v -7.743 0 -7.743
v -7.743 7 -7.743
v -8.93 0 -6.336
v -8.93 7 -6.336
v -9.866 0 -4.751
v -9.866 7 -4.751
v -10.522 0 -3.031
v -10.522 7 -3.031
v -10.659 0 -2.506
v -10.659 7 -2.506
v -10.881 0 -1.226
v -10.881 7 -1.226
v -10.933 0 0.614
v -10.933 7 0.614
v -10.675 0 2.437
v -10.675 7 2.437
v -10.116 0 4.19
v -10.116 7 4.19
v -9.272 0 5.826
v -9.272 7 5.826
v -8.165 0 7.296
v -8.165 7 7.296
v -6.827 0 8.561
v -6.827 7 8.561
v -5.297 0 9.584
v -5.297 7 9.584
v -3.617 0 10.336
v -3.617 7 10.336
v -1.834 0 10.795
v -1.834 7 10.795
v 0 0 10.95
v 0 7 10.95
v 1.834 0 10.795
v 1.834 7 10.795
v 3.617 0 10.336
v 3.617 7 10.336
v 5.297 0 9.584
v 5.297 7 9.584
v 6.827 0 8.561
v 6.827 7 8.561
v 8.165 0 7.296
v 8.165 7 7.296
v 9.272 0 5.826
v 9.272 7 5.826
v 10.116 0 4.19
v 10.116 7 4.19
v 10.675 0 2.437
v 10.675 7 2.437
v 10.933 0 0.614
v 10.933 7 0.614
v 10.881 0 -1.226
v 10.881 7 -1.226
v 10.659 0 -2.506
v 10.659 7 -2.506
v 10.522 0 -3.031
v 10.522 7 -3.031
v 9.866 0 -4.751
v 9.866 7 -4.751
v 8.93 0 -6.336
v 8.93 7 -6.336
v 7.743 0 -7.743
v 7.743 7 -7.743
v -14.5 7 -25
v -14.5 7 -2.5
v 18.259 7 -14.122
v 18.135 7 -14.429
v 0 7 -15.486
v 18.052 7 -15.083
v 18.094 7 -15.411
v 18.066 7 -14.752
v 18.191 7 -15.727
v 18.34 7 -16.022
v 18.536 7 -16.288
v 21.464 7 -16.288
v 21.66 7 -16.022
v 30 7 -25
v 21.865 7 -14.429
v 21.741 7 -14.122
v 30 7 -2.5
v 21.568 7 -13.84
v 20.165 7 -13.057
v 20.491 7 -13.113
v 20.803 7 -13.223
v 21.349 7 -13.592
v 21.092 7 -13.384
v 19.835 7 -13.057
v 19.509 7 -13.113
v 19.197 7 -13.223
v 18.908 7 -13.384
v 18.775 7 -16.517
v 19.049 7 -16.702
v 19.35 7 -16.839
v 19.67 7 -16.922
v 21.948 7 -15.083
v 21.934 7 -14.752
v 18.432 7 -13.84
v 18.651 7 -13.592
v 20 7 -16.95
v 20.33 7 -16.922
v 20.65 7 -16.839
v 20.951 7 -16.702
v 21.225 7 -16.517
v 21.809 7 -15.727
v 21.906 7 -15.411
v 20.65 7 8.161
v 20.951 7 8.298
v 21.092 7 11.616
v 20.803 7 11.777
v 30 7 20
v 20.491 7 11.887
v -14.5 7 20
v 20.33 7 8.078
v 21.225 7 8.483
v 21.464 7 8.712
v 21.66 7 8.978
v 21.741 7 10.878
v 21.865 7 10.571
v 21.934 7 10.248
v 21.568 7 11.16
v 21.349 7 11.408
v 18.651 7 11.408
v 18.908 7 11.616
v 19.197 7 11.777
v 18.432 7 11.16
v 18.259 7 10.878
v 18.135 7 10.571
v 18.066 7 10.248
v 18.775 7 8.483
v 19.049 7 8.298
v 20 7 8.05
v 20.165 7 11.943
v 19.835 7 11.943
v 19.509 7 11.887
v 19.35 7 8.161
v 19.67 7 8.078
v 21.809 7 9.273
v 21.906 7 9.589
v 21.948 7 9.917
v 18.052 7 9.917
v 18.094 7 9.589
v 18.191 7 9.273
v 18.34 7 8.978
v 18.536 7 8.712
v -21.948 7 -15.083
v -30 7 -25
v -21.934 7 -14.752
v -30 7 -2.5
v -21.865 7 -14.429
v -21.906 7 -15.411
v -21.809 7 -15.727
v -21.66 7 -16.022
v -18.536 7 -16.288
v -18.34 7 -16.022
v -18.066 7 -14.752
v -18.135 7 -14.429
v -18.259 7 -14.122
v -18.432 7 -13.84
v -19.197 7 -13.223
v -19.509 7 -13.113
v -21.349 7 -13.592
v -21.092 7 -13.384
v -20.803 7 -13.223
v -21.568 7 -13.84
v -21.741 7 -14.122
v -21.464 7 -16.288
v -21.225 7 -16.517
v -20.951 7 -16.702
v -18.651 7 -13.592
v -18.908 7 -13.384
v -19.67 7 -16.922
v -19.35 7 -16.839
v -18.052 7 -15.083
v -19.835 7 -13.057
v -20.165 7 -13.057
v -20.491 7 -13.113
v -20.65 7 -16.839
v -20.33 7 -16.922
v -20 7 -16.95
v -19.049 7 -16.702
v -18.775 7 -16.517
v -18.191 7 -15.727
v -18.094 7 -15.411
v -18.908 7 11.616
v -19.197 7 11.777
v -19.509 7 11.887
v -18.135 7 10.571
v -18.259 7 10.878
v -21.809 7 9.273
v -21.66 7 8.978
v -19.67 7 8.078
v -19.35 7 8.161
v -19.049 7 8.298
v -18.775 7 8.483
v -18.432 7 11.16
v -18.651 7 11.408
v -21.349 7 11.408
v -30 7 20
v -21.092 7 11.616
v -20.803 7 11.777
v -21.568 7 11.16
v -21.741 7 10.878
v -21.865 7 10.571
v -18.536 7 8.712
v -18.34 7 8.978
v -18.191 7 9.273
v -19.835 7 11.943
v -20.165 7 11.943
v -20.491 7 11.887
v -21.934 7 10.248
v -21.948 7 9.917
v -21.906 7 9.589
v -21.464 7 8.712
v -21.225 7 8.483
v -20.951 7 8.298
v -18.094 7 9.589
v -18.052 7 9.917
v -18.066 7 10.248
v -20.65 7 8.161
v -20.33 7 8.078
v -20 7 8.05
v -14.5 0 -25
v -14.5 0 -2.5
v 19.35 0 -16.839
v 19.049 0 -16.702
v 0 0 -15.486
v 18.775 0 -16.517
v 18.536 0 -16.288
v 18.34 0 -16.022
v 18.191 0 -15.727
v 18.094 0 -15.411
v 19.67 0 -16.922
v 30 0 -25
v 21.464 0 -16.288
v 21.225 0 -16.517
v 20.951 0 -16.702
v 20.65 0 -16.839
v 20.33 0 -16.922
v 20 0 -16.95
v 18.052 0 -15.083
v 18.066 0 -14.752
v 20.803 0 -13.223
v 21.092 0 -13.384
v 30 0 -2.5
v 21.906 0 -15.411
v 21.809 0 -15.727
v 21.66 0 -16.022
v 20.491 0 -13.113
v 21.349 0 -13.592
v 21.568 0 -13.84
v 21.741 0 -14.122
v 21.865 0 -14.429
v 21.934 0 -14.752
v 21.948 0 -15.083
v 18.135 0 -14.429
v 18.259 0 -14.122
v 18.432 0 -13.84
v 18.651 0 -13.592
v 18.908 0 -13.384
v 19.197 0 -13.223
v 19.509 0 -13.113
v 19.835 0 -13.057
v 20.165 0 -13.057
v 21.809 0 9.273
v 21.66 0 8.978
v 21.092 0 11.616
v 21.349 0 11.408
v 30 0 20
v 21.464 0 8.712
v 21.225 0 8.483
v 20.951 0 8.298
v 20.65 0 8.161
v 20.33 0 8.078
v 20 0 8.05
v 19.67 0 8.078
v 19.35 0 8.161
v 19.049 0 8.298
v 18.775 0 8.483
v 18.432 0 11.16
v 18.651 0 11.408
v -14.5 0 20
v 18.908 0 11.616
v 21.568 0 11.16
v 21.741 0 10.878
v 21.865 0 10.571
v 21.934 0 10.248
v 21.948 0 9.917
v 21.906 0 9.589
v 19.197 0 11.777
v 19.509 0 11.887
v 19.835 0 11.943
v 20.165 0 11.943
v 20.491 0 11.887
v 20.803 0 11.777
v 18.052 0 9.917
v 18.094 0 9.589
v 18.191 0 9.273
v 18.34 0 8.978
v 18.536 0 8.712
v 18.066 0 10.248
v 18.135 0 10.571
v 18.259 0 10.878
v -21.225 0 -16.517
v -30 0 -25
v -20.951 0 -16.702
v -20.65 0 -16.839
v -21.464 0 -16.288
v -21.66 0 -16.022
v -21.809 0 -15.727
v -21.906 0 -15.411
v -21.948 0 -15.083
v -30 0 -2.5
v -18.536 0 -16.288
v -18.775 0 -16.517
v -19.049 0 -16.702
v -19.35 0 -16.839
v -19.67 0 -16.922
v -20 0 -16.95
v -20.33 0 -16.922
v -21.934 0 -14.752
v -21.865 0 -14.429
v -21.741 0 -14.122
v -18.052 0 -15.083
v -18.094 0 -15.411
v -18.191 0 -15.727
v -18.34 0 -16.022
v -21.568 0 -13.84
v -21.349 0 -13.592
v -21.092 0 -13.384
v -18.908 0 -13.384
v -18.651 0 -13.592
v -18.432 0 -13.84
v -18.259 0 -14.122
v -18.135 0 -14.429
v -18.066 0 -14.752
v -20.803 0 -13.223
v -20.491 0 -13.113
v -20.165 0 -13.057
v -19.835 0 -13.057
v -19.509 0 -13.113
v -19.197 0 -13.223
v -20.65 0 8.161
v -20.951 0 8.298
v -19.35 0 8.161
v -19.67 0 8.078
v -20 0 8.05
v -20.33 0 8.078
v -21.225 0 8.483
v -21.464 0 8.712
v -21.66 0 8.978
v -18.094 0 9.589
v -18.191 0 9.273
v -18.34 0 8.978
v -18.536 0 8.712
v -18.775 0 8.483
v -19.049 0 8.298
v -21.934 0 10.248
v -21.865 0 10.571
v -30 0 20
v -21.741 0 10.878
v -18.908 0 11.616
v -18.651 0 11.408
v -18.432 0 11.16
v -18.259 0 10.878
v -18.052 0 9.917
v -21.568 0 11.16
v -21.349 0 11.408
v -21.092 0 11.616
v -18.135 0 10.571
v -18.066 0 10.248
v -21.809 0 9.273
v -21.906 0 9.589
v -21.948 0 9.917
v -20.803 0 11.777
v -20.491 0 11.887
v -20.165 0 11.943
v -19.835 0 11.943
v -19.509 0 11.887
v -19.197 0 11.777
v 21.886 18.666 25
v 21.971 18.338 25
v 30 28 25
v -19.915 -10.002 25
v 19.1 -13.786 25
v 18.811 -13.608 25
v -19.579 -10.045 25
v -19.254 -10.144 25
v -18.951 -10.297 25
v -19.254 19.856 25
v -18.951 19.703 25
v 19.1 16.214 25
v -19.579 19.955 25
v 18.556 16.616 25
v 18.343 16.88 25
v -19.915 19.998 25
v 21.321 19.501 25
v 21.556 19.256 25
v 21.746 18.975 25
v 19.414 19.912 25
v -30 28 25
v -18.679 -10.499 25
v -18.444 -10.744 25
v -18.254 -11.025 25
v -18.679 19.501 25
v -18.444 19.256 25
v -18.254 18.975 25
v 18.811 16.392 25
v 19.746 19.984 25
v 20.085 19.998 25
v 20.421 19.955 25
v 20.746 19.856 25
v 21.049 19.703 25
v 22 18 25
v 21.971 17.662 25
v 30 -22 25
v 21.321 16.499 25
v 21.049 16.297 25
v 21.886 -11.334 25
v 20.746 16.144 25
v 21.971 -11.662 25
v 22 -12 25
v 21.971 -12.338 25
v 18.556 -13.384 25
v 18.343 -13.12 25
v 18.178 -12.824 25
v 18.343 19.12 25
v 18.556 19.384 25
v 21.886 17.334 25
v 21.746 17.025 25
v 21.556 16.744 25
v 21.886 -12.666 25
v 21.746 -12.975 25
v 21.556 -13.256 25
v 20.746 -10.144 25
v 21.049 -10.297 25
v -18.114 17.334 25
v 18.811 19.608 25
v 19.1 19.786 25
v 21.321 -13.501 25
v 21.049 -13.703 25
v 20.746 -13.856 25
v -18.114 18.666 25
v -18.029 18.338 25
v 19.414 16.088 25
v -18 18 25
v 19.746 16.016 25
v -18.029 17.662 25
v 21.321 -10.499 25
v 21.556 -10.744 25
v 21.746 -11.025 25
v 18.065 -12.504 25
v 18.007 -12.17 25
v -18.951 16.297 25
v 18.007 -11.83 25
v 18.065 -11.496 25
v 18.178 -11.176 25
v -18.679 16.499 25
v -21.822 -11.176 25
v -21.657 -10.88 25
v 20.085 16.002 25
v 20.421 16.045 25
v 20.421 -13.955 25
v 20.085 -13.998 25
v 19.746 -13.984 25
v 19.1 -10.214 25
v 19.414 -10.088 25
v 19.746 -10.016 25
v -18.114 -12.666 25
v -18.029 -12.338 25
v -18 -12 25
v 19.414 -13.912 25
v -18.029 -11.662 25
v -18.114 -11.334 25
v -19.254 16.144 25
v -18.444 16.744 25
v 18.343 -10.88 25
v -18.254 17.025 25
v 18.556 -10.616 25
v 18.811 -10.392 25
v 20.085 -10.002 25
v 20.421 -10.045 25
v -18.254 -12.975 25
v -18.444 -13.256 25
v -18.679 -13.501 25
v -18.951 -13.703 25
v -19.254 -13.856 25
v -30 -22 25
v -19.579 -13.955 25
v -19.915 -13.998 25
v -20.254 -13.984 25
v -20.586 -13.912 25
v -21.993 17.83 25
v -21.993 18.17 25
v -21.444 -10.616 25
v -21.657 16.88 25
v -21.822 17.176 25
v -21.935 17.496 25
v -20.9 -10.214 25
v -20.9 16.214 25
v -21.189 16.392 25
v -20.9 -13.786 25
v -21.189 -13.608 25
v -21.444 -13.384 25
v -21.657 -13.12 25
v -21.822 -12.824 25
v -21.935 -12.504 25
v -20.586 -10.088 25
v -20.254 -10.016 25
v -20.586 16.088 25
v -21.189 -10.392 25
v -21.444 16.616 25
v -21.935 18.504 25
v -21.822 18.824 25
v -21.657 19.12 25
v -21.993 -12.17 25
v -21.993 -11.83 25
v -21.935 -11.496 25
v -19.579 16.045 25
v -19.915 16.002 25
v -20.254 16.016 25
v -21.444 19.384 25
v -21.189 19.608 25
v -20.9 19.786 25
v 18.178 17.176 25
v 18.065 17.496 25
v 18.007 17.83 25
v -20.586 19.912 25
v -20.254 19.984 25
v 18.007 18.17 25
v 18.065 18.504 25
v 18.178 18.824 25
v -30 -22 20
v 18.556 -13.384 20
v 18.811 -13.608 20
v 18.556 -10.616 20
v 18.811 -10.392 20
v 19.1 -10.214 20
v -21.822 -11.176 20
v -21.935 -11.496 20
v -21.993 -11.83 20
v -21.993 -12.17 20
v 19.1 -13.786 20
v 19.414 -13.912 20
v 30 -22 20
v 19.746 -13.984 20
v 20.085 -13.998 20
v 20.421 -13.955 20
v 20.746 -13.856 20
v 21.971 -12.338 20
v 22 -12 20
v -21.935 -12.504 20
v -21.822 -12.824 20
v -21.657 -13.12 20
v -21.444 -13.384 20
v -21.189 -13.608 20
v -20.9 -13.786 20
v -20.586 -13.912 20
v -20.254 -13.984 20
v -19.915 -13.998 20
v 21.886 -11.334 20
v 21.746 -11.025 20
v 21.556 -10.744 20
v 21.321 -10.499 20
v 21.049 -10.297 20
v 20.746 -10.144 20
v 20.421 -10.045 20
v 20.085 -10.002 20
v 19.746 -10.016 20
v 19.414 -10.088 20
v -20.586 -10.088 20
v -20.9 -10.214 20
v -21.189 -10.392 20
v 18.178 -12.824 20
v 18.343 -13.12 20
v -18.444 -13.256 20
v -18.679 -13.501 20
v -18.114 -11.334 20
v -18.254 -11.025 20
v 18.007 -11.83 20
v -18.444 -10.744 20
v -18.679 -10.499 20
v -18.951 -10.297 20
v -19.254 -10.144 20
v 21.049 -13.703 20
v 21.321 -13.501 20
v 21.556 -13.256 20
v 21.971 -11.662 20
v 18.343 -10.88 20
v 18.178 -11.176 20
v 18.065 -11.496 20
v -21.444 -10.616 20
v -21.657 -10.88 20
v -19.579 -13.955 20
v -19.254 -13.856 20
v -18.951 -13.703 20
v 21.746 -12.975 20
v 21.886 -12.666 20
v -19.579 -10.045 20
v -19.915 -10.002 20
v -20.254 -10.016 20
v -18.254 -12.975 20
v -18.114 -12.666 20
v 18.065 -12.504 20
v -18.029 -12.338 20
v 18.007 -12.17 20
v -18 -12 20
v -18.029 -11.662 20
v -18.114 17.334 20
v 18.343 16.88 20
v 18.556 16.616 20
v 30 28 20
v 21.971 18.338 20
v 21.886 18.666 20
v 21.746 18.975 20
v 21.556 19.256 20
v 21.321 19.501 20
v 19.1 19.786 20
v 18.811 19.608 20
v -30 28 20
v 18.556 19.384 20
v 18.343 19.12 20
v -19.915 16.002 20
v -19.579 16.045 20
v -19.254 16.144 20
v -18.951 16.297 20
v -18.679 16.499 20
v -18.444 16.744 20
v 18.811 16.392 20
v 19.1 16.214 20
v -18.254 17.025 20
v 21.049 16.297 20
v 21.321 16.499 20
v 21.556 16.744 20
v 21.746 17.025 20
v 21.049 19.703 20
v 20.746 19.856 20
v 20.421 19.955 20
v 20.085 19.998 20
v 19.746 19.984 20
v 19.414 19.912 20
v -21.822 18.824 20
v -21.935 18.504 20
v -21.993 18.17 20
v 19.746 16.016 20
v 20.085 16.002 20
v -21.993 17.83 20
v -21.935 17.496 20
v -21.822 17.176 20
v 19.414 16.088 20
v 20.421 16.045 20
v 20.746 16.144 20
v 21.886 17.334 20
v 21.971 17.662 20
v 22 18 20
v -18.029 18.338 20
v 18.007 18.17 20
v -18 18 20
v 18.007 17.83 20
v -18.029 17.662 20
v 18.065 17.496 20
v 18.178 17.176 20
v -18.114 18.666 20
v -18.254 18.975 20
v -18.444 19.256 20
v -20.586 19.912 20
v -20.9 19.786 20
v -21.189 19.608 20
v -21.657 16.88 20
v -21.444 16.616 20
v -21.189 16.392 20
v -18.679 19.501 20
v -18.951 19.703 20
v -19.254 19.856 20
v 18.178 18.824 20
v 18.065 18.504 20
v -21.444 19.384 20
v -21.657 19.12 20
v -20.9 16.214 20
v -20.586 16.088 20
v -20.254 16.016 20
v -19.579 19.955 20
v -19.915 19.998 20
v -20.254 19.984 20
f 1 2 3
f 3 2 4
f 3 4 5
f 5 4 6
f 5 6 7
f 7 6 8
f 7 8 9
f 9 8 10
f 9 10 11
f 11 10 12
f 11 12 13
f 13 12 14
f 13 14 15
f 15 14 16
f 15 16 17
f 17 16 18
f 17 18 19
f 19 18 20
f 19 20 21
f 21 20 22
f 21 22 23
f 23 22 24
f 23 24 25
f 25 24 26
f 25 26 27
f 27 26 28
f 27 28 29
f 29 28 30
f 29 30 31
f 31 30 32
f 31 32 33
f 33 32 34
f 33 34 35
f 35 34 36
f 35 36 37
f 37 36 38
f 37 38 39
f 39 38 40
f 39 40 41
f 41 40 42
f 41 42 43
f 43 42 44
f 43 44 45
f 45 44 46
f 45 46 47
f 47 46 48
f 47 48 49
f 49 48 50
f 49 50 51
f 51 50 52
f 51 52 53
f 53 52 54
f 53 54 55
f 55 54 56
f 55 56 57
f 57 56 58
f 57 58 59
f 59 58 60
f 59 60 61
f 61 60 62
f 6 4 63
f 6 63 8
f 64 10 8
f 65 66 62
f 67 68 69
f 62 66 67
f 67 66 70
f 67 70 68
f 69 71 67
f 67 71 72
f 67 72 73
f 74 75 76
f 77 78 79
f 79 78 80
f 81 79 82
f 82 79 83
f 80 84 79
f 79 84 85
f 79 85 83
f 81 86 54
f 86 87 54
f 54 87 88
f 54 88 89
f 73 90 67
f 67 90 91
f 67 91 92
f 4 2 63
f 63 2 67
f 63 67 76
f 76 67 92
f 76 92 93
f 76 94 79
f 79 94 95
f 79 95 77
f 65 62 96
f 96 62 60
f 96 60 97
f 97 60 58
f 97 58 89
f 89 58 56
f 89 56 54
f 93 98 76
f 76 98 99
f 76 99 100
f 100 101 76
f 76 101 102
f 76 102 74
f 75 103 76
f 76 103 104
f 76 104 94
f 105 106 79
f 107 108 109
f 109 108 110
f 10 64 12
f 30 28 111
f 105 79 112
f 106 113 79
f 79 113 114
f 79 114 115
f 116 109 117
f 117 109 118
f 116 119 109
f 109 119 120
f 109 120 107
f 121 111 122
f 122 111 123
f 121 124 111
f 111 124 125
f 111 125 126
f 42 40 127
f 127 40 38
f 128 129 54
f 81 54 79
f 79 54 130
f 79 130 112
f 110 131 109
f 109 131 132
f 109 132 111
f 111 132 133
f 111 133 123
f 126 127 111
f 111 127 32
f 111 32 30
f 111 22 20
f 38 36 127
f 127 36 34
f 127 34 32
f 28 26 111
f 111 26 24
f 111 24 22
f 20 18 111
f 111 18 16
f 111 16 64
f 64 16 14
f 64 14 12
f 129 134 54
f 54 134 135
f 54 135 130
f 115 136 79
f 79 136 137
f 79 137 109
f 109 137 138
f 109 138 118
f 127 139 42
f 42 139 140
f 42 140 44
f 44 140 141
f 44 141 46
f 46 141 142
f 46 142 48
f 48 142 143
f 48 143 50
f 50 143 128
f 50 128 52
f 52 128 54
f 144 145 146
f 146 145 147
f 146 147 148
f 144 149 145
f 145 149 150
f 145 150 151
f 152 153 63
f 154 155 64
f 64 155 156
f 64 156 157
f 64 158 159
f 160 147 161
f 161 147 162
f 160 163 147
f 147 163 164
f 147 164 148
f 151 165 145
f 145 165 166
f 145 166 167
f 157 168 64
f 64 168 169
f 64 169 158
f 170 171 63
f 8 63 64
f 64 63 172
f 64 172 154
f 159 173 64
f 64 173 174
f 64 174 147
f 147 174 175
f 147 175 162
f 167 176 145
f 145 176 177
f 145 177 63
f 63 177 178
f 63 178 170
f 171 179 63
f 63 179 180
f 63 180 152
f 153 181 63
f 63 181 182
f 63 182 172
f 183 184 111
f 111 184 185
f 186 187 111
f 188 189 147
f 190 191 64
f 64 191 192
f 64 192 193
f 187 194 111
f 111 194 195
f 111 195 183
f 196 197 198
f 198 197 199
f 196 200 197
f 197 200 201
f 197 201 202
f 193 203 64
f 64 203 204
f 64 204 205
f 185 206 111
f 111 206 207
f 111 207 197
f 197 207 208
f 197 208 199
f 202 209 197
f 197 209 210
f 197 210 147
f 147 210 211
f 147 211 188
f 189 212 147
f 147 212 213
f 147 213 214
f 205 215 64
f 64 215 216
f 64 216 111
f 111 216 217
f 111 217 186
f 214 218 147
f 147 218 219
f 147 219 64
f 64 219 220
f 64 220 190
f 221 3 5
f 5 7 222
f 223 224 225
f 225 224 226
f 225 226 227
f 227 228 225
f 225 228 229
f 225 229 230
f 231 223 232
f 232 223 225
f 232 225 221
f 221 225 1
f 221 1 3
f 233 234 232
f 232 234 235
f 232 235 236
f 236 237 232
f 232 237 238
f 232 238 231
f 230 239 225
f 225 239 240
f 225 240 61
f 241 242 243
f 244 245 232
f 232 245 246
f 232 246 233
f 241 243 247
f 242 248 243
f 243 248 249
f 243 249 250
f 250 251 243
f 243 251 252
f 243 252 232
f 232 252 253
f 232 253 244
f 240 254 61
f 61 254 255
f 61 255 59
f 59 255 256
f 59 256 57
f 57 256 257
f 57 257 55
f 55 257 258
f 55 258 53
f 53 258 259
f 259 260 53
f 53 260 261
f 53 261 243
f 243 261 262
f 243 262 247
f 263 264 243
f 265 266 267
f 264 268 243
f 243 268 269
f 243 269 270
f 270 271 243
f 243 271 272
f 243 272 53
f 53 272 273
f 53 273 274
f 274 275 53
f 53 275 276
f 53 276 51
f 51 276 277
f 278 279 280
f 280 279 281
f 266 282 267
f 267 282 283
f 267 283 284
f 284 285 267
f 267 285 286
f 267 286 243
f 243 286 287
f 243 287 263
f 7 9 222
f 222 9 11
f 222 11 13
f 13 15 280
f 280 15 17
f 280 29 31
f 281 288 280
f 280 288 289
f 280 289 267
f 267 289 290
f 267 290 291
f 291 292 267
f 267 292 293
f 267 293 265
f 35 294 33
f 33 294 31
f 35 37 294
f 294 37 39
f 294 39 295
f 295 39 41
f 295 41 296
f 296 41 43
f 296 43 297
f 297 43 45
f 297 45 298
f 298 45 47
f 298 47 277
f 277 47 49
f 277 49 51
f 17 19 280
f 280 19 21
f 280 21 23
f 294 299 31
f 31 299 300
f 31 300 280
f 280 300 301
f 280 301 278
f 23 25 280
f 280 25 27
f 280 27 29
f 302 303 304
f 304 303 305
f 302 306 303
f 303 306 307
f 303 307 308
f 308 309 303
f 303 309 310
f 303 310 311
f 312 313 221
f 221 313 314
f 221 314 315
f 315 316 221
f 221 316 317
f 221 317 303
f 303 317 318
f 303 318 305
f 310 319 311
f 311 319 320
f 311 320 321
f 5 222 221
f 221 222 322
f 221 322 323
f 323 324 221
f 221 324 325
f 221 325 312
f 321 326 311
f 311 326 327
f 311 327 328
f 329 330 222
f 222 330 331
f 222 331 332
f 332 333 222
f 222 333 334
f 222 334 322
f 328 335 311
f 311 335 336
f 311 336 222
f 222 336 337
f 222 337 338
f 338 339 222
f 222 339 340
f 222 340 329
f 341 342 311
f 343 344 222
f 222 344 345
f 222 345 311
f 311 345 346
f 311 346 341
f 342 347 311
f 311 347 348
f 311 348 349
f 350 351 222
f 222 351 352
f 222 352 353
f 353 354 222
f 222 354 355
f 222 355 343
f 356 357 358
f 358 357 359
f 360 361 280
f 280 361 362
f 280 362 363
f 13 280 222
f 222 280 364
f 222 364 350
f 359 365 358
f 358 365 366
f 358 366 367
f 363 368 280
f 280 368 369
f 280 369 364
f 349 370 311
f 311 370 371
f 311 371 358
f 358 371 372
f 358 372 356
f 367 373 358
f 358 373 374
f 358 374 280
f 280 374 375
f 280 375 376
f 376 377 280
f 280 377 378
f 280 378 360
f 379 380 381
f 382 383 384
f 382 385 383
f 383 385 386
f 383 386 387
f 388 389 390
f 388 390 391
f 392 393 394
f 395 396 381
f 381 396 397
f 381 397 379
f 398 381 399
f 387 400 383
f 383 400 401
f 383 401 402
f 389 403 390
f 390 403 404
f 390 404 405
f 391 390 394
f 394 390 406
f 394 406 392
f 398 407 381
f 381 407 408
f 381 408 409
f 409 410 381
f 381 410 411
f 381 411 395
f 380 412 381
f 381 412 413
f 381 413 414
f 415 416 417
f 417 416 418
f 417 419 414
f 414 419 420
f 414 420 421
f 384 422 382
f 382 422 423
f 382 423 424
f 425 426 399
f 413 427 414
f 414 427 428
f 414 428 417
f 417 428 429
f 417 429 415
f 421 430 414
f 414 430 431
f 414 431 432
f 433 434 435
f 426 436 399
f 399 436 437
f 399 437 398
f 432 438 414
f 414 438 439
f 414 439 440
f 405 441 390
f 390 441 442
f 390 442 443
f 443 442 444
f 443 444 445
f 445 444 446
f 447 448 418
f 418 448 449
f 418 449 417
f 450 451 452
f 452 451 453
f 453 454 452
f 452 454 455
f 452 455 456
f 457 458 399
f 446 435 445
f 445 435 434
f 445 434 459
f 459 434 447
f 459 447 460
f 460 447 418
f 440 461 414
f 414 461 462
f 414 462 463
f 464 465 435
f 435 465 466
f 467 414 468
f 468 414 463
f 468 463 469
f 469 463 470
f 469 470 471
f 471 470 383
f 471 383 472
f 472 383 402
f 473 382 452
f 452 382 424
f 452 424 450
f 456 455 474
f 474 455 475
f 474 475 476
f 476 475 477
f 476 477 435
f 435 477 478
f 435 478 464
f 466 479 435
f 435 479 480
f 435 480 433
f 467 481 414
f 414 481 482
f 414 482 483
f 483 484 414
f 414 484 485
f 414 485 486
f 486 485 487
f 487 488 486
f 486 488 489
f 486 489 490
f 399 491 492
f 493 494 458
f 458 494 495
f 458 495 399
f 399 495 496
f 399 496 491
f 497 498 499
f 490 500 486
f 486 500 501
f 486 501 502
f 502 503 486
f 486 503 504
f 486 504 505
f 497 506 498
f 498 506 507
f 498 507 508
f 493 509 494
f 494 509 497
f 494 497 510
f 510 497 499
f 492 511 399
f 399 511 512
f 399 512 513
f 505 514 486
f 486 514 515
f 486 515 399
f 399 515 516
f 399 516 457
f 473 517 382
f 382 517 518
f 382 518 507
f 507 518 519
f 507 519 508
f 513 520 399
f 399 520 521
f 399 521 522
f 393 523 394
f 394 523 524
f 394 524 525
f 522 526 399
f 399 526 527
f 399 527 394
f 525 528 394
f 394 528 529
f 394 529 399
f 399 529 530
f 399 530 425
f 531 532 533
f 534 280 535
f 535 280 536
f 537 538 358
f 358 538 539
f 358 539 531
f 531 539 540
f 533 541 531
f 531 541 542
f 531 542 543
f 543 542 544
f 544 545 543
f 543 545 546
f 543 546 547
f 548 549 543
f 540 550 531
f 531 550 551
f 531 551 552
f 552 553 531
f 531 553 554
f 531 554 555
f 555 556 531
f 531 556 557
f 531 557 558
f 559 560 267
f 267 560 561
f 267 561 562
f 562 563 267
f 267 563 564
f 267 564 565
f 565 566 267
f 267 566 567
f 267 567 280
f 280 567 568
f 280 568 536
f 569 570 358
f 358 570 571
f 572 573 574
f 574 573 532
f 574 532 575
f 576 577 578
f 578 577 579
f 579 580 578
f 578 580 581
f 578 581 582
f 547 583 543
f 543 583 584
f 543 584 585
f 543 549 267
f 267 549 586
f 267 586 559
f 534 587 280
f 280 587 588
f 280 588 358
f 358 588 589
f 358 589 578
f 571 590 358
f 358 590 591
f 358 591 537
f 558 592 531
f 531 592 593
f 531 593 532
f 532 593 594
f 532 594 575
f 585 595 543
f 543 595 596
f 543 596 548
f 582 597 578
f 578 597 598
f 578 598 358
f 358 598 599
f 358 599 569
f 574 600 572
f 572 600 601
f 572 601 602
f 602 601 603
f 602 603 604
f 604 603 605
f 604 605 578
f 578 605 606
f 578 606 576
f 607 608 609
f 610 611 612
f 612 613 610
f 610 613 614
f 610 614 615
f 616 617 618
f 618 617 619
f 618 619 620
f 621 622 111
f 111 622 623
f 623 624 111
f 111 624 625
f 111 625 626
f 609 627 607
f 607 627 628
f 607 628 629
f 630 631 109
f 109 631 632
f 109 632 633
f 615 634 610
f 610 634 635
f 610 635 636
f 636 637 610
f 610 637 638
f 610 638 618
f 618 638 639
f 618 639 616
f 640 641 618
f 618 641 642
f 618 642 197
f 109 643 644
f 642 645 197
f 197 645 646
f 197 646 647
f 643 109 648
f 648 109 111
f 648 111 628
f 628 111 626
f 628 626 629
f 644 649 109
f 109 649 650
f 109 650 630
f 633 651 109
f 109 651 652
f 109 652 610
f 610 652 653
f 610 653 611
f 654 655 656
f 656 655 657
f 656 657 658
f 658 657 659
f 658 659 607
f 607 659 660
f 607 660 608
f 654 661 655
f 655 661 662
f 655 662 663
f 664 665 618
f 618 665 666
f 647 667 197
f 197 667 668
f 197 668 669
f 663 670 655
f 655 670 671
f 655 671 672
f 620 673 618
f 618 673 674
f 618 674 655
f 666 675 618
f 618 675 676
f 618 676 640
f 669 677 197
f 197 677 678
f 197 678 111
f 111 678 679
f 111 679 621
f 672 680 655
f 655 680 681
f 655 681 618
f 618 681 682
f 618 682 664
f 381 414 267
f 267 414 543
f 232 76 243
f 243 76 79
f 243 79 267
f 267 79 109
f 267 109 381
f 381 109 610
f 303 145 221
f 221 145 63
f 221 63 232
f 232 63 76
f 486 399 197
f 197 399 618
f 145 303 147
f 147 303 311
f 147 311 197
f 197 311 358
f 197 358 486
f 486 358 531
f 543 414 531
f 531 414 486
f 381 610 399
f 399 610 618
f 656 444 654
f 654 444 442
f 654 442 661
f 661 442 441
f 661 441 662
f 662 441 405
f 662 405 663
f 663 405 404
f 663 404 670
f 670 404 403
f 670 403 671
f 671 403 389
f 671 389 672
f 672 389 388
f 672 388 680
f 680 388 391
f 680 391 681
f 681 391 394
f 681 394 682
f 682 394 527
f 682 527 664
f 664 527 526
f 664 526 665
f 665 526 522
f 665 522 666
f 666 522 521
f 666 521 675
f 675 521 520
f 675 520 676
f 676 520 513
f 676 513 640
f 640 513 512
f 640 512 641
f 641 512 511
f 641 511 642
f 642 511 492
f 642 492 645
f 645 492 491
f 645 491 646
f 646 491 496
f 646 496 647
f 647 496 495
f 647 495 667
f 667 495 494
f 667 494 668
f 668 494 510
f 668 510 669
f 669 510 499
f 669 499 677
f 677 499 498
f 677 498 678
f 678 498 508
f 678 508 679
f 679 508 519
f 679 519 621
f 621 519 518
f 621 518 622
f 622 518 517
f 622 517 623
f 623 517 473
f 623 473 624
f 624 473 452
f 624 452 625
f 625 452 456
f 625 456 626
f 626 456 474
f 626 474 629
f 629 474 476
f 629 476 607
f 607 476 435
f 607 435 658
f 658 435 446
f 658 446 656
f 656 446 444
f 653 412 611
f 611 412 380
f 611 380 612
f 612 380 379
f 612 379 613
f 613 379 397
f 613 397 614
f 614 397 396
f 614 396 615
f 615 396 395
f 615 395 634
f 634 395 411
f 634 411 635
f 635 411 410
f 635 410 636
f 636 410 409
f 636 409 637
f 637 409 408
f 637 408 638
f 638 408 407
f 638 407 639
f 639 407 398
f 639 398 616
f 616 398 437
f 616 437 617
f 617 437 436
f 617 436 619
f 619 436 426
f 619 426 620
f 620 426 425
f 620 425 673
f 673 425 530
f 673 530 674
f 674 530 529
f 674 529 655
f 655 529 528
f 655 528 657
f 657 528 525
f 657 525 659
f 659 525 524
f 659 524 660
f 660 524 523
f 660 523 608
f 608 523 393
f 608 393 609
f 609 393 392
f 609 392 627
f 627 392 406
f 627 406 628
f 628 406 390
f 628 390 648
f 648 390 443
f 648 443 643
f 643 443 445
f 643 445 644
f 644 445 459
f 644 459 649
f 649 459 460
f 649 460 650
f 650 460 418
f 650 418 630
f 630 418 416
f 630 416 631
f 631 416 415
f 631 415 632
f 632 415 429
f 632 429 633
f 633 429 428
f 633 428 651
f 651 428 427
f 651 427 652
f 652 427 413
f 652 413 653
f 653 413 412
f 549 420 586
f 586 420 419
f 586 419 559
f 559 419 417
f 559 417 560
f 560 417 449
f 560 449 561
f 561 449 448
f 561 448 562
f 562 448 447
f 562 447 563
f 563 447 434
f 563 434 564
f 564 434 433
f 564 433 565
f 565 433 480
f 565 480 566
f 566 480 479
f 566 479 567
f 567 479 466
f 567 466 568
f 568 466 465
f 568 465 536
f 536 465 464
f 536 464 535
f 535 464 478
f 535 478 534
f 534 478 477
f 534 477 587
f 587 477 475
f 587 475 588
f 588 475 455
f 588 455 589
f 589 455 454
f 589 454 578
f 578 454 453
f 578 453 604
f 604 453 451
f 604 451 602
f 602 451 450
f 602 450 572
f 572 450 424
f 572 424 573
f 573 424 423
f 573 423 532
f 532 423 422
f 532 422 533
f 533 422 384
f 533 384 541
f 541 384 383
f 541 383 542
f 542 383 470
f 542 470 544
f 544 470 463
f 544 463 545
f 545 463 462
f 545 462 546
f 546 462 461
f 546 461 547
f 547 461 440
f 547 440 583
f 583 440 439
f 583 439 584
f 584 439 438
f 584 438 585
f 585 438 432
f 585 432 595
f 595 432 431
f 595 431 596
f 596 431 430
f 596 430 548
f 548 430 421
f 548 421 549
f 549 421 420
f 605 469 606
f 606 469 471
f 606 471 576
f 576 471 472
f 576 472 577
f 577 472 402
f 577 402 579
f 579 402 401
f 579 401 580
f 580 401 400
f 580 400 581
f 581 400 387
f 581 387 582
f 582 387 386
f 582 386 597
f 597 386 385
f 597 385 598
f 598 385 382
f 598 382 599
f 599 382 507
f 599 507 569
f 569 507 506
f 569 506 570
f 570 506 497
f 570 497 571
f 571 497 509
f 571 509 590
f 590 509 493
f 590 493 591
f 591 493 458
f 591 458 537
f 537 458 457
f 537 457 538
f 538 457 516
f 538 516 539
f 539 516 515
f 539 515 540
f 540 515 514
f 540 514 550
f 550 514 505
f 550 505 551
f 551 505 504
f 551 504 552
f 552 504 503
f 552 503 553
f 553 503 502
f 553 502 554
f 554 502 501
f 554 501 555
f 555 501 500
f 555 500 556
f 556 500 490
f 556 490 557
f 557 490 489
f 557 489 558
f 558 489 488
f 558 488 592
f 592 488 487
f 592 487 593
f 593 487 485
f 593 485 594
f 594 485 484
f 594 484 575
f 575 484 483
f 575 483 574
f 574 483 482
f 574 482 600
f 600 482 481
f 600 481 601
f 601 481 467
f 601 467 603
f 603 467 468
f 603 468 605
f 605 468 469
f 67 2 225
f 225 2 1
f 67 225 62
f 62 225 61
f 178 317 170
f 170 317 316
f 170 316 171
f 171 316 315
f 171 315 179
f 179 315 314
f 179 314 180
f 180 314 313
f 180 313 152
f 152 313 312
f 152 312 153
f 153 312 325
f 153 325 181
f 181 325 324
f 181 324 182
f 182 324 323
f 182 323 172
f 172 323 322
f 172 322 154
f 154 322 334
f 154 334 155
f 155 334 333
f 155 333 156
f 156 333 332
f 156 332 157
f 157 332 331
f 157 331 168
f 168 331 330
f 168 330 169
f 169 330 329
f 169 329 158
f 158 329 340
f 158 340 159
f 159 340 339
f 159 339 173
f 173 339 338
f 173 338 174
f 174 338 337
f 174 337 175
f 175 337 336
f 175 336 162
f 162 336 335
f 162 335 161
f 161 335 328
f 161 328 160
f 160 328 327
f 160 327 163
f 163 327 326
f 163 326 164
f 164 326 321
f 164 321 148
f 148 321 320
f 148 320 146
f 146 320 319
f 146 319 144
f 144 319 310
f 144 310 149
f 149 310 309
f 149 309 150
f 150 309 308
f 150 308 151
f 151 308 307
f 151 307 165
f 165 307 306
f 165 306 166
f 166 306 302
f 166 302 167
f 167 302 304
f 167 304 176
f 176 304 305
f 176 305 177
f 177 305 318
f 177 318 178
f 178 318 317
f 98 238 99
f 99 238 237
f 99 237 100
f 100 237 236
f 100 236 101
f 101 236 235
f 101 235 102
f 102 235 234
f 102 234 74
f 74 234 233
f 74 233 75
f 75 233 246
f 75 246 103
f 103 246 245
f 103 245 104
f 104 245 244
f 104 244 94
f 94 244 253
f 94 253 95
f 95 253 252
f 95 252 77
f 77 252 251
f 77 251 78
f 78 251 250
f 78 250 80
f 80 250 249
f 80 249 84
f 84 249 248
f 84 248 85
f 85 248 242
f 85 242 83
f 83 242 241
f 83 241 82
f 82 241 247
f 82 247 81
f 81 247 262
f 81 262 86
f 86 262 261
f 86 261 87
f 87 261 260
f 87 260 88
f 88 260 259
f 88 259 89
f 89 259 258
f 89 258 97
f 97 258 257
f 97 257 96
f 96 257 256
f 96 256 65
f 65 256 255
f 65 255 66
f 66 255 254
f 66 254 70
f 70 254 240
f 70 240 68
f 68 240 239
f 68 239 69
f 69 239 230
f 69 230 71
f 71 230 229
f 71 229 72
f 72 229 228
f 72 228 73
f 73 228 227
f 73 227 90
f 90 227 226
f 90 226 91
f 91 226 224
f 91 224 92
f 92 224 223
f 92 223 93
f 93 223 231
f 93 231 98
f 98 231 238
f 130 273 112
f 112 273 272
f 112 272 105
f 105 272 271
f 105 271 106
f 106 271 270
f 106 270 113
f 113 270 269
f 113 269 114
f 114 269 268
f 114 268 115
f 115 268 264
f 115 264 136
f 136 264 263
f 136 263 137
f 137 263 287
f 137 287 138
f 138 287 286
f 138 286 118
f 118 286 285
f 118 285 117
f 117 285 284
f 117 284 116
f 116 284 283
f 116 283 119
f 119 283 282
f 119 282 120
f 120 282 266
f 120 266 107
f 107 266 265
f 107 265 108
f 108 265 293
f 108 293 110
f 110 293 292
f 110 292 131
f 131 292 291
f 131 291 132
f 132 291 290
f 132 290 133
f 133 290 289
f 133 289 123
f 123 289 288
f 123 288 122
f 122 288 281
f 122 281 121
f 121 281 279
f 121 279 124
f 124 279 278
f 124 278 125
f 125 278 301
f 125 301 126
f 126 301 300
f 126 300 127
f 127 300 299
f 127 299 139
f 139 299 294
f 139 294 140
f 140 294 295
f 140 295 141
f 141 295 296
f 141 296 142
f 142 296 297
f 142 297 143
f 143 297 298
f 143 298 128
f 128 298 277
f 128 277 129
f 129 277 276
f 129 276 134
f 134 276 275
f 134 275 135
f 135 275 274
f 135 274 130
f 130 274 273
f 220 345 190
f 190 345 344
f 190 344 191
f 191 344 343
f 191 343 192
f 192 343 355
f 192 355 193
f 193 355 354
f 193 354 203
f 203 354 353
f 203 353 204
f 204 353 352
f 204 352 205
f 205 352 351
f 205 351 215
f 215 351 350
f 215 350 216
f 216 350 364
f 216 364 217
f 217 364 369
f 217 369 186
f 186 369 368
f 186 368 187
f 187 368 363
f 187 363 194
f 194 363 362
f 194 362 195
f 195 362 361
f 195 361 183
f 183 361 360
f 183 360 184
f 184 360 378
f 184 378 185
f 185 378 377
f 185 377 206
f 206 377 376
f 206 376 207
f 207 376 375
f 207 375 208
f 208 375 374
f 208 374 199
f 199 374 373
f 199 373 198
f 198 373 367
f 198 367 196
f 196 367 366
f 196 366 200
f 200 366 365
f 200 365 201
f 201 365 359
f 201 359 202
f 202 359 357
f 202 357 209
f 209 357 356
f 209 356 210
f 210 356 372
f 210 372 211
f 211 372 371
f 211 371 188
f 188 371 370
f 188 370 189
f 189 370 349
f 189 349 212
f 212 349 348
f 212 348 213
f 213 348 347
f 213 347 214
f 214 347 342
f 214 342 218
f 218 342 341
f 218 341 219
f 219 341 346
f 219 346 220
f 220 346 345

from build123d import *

# Parameters (mm, degrees)
SKETCH_2_W           = 60
SKETCH_2_H           = 50
SKETCH_2_R           = 10.85
EXTRUDE_1_DEPTH      = 7
SKETCH_4_W           = 60
SKETCH_4_H           = 5
EXTRUDE_2_DEPTH      = 25
SKETCH_6_R           = 2
CUT_EXTRUDE_1_DEPTH  = 50
SKETCH_8_R           = 2
CUT_EXTRUDE_4_DEPTH  = 50
SKETCH_10_R          = 10.95
CUT_EXTRUDE_5_DEPTH  = 10
SKETCH_14_R          = 10.95
CUT_EXTRUDE_12_DEPTH = 10


with BuildPart() as part:
    # 草图2 → 凸台-拉伸1 (new body)
    with BuildSketch(Plane(origin=(0, 0, 0), x_dir=(1, 0, 0), z_dir=(0, 1, 0))):
        Rectangle(SKETCH_2_W, SKETCH_2_H)
        with Locations(Location((0, 0, 0), (0, 0, 270))):
            Circle(SKETCH_2_R, mode=Mode.SUBTRACT)
    extrude(amount=EXTRUDE_1_DEPTH)

    # 草图4 → 凸台-拉伸2 (add, symmetric)
    with BuildSketch(Plane(origin=(0, 3, 0), x_dir=(1, 0, 0), z_dir=(0, 1, 0))):
        with Locations((0, -22.5)):
            Rectangle(SKETCH_4_W, SKETCH_4_H)
    extrude(amount=EXTRUDE_2_DEPTH, both=True)

    # 草图6 → 切除-拉伸1 (cut)
    with BuildSketch(Plane.XY.offset(25)):
        with BuildLine():
            ThreePointArc((-18, 18), (-18.585786438, 19.414213562), (-20, 20))
            Line((-20, 20), (-20, 18))
            Line((-20, 18), (-22, 18))
            ThreePointArc((-22, 18), (-20, 16), (-18, 18))
        make_face()
        with BuildLine():
            Line((-20, 18), (-20, 20))
            ThreePointArc((-20, 20), (-21.414213562, 19.414213562), (-22, 18))
            Line((-22, 18), (-20, 18))
        make_face()
        with Locations((20, 18)):
            Circle(SKETCH_6_R)
        with Locations((-20, -12)):
            Circle(SKETCH_6_R)
        with Locations((20, -12)):
            Circle(SKETCH_6_R)
    extrude(amount=-CUT_EXTRUDE_1_DEPTH, mode=Mode.SUBTRACT)

    # 草图8 → 切除-拉伸4 (cut)
    with BuildSketch(Plane.XZ):
        with BuildLine():
            ThreePointArc((-18, 10), (-18.585786438, 11.414213562), (-20, 12))
            Line((-20, 12), (-20, 10))
            Line((-20, 10), (-22, 10))
            ThreePointArc((-22, 10), (-20, 8), (-18, 10))
        make_face()
        with BuildLine():
            Line((-20, 10), (-20, 12))
            ThreePointArc((-20, 12), (-21.414213562, 11.414213562), (-22, 10))
            Line((-22, 10), (-20, 10))
        make_face()
        with Locations(Location((20, 10, 0), (0, 0, 270))):
            Circle(SKETCH_8_R)
        with Locations(Location((20, -15, 0), (0, 0, 270))):
            Circle(SKETCH_8_R)
        with Locations(Location((-20, -15, 0), (0, 0, 270))):
            Circle(SKETCH_8_R)
    extrude(amount=-CUT_EXTRUDE_4_DEPTH, mode=Mode.SUBTRACT)

    # 草图10 → 切除-拉伸5 (cut)
    with BuildSketch(Plane(origin=(0, 7, 0), x_dir=(1, 0, 0), z_dir=(0, 1, 0))):
        with Locations(Location((0, 0, 0), (0, 0, 270))):
            Circle(SKETCH_10_R)
    extrude(amount=-CUT_EXTRUDE_5_DEPTH, mode=Mode.SUBTRACT)

    # 草图14 → 切除-拉伸12 (cut)
    with BuildSketch(Plane(origin=(0, 7, 0), x_dir=(1, 0, 0), z_dir=(0, 1, 0))):
        with BuildLine():
            ThreePointArc((-7.742819254, 7.742819254), (-4.190383584, 10.116480881), (0, 10.95))
            Line((0, 10.95), (0, 15.485638508))
            Line((0, 15.485638508), (-7.742819254, 7.742819254))
        make_face()
        with BuildLine():
            Line((0, 15.485638508), (0, 10.95))
            ThreePointArc((0, 10.95), (4.190383584, 10.116480881), (7.742819254, 7.742819254))
            Line((7.742819254, 7.742819254), (0, 15.485638508))
        make_face()
        Circle(SKETCH_14_R)
    extrude(amount=-CUT_EXTRUDE_12_DEPTH, mode=Mode.SUBTRACT)


solid = part.part
